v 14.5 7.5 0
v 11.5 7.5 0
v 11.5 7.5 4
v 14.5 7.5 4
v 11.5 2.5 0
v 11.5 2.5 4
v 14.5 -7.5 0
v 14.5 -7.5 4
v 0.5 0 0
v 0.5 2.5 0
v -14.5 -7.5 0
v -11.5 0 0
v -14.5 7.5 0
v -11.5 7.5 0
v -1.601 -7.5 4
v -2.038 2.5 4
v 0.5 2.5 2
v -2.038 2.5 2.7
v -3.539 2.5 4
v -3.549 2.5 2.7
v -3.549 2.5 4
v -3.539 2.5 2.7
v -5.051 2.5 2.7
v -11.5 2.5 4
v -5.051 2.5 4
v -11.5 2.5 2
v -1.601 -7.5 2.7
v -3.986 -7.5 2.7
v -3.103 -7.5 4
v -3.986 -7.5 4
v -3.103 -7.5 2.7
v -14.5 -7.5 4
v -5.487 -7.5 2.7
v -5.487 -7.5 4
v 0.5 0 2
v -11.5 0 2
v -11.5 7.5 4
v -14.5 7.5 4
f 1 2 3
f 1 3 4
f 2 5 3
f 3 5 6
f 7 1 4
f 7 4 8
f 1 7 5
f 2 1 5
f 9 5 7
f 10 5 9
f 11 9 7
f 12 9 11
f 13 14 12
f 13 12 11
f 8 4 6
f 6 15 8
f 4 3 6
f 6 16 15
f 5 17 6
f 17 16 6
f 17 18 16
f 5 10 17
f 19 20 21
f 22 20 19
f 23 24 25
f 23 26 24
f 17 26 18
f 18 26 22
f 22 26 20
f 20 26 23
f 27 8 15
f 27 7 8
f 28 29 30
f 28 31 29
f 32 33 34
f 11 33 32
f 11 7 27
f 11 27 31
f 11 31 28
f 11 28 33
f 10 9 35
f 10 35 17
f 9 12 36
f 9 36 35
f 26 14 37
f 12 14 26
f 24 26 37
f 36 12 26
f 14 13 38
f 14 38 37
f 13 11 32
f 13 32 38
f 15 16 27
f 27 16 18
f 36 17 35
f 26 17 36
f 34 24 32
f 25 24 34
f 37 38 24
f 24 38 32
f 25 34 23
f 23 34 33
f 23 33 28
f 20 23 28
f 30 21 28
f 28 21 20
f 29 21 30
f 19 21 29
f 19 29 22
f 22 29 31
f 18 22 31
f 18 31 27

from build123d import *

# Parameters (mm, degrees)
PAD_DEPTH       = 4
SKETCH001_W     = 12
SKETCH001_H     = 2.5
POCKET_DEPTH    = 2
POCKET001_DEPTH = 1.3


with BuildPart() as part:
    # Sketch → Pad (new body)
    with BuildSketch(Plane.XY):
        Polygon((-14.5, 7.5), (-11.5, 7.5), (-11.5, 2.5), (11.5, 2.5), (11.5, 7.5), (14.5, 7.5), (14.5, -7.5), (-14.5, -7.5), align=None)
    extrude(amount=PAD_DEPTH)

    # Sketch001 (on Face9 of Pad) → Pocket (cut)
    with BuildSketch(Plane(origin=(0, 0, 0), x_dir=(1, 0, 0), z_dir=(0, 0, -1))):
        with Locations((-5.5, -1.25)):
            Rectangle(SKETCH001_W, SKETCH001_H)
    extrude(amount=-POCKET_DEPTH, mode=Mode.SUBTRACT)

    # Sketch002 (on Face5 of Pocket) → Pocket001 (cut)
    with BuildSketch(Plane.XY.offset(4)):
        Polygon((-5.050715, 2.5), (-5.487324, -7.5), (-3.985895, -7.5), (-3.549285, 2.5), align=None)
        Polygon((-3.539285, 2.5), (-3.102676, -7.5), (-1.601247, -7.5), (-2.037856, 2.5), align=None)
    extrude(amount=-POCKET001_DEPTH, mode=Mode.SUBTRACT)


solid = part.part
